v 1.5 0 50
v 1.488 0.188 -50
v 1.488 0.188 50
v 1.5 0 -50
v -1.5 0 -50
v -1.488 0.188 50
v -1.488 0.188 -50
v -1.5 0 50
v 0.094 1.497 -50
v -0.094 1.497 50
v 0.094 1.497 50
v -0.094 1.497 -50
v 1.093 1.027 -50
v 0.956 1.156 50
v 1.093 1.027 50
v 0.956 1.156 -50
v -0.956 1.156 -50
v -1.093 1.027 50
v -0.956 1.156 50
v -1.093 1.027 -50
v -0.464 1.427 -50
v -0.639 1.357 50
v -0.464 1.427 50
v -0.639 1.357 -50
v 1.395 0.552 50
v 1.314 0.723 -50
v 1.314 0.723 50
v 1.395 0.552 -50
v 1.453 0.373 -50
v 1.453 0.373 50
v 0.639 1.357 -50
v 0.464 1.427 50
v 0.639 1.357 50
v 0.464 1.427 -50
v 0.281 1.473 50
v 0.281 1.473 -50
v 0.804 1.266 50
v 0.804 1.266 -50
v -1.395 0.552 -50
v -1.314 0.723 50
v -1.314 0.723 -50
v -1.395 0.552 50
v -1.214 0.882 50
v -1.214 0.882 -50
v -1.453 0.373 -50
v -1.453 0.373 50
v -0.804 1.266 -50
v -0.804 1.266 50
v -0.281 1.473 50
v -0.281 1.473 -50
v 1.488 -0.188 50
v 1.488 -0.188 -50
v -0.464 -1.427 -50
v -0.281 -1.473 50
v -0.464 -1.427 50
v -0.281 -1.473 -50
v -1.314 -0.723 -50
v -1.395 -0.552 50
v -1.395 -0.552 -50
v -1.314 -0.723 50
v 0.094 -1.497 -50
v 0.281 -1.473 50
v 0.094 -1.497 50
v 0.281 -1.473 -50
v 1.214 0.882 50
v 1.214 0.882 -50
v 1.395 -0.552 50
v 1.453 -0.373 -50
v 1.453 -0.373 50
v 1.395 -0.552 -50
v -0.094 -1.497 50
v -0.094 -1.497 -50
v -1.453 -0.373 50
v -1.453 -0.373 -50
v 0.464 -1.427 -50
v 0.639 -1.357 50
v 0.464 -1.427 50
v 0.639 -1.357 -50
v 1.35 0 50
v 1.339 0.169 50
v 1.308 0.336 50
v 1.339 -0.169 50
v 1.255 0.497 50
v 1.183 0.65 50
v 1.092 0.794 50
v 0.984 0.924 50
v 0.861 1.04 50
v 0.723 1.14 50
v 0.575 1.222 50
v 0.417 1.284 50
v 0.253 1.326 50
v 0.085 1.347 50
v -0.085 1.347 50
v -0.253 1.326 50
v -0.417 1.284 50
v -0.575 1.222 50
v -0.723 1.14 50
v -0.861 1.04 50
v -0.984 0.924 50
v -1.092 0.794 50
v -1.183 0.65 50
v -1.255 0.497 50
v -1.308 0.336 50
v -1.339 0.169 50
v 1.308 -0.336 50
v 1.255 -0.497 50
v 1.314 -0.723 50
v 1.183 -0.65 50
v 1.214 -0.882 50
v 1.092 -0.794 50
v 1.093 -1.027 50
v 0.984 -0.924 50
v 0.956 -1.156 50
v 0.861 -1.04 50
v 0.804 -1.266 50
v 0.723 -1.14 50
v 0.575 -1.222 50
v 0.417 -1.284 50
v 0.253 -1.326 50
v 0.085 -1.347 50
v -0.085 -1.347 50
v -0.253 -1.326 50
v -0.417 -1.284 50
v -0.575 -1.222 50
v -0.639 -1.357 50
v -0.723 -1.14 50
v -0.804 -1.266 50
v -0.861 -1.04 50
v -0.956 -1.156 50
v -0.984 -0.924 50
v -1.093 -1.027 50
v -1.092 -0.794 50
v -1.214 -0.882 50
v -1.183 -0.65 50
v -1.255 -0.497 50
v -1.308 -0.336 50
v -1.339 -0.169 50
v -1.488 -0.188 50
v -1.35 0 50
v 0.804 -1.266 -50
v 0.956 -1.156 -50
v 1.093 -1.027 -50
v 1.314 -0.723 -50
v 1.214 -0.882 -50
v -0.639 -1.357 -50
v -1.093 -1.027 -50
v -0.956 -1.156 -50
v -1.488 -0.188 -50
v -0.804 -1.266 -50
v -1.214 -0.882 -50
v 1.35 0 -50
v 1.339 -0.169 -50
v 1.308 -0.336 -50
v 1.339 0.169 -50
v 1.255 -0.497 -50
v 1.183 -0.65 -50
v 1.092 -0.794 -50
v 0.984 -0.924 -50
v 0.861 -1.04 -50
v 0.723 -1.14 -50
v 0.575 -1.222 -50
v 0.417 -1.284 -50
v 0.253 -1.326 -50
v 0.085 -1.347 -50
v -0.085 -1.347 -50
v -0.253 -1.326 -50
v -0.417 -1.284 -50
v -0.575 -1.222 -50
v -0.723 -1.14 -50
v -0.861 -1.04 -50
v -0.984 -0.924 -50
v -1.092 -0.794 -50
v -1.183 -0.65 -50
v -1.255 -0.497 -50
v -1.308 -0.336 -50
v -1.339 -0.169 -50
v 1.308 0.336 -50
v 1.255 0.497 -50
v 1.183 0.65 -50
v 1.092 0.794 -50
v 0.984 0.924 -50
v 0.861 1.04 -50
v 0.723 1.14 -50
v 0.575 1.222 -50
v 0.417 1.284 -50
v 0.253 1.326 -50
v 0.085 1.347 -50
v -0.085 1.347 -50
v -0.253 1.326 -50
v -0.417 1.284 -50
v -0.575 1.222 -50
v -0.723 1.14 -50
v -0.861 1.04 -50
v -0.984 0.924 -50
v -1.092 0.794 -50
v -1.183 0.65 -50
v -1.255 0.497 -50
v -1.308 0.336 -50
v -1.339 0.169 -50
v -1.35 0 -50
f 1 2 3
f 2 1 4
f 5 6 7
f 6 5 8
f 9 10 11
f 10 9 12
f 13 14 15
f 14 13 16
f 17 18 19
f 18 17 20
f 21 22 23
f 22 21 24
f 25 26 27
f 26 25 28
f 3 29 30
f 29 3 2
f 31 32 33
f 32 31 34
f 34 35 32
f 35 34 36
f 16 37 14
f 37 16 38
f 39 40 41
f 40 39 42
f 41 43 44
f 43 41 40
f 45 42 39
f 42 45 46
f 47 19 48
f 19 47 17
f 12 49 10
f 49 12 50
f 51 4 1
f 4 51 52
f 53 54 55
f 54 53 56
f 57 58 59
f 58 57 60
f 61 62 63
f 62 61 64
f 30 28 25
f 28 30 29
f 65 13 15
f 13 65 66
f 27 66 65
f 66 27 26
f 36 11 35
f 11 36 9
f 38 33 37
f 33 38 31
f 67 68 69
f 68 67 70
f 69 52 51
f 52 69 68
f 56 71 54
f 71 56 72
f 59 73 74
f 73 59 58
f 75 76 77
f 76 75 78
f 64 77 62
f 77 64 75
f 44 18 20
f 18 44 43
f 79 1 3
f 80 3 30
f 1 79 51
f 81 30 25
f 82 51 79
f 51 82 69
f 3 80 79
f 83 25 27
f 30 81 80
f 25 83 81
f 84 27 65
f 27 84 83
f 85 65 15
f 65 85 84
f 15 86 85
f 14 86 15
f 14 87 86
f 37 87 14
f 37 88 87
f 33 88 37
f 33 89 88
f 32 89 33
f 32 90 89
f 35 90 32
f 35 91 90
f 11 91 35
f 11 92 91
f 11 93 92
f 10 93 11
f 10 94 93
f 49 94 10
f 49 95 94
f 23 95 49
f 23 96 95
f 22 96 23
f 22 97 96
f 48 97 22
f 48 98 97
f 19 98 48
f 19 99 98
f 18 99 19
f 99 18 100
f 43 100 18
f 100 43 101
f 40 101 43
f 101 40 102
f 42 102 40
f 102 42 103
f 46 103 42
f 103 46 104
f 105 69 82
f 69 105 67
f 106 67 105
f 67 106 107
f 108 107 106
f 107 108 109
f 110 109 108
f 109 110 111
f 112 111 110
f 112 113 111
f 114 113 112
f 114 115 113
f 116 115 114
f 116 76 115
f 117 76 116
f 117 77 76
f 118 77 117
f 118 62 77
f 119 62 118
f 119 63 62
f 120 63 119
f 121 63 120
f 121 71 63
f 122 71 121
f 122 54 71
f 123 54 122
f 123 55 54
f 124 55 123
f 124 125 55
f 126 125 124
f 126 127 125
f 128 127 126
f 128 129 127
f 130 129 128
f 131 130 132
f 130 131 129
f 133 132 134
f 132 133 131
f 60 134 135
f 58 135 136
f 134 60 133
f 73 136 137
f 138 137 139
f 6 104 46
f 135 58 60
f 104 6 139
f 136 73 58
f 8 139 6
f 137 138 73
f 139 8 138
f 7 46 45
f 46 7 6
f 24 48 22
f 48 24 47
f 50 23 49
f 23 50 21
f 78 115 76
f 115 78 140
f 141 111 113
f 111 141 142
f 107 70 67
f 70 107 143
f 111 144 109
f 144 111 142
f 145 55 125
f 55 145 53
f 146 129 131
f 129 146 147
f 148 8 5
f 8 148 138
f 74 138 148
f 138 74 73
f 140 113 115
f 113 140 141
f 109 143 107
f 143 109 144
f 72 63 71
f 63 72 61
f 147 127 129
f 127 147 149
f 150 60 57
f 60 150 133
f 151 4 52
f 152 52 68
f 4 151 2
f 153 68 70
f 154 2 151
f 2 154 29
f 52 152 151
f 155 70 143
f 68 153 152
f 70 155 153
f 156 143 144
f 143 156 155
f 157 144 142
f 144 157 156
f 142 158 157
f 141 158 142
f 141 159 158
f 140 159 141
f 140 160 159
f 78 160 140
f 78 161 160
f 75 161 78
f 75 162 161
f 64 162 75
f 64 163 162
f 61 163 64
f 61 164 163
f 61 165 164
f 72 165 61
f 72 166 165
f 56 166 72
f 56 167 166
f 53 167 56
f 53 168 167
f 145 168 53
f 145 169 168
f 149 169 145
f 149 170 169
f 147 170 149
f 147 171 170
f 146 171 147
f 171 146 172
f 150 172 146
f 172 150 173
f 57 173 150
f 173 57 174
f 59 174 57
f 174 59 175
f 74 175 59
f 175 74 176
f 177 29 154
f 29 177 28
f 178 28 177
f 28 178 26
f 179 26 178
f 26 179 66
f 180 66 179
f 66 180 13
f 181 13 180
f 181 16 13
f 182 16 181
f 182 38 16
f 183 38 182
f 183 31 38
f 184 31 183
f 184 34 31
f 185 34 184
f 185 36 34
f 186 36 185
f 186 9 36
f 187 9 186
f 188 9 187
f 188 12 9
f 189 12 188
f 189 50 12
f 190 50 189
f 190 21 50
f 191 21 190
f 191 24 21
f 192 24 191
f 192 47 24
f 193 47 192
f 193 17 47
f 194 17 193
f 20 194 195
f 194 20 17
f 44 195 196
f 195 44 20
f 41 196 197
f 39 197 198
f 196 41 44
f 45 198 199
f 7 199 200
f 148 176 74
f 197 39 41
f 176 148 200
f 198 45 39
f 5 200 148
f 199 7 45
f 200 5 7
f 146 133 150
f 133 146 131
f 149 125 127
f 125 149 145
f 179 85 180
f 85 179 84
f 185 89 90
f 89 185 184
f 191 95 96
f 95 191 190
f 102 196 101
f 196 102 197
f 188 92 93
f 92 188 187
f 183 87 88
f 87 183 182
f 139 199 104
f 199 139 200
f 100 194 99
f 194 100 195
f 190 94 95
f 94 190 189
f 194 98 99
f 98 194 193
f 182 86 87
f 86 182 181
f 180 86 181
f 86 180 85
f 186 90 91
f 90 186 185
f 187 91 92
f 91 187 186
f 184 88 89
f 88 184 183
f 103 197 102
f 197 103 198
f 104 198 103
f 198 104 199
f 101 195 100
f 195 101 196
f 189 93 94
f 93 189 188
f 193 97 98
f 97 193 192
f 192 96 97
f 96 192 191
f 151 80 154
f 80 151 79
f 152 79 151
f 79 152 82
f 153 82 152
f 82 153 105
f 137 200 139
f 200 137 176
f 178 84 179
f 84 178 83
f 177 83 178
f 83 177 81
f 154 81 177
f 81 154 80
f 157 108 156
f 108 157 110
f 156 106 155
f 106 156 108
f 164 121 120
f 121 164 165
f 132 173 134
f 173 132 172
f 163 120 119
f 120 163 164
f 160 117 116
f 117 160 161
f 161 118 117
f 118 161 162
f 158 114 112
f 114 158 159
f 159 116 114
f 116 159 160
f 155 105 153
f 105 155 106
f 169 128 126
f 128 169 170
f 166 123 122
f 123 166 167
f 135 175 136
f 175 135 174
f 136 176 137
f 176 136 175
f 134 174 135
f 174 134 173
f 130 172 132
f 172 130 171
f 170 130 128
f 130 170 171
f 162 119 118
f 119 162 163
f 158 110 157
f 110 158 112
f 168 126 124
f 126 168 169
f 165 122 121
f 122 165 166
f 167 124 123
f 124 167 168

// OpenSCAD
$fn = 50;


difference() {
	union() {
		translate(v = [0, 0, -50.0000000000]) {
			cylinder(h = 100, r = 1.5000000000);
		}
	}
	union() {
		translate(v = [0, 0, -100.0000000000]) {
			cylinder(h = 200, r = 1.3500000000);
		}
	}
}
